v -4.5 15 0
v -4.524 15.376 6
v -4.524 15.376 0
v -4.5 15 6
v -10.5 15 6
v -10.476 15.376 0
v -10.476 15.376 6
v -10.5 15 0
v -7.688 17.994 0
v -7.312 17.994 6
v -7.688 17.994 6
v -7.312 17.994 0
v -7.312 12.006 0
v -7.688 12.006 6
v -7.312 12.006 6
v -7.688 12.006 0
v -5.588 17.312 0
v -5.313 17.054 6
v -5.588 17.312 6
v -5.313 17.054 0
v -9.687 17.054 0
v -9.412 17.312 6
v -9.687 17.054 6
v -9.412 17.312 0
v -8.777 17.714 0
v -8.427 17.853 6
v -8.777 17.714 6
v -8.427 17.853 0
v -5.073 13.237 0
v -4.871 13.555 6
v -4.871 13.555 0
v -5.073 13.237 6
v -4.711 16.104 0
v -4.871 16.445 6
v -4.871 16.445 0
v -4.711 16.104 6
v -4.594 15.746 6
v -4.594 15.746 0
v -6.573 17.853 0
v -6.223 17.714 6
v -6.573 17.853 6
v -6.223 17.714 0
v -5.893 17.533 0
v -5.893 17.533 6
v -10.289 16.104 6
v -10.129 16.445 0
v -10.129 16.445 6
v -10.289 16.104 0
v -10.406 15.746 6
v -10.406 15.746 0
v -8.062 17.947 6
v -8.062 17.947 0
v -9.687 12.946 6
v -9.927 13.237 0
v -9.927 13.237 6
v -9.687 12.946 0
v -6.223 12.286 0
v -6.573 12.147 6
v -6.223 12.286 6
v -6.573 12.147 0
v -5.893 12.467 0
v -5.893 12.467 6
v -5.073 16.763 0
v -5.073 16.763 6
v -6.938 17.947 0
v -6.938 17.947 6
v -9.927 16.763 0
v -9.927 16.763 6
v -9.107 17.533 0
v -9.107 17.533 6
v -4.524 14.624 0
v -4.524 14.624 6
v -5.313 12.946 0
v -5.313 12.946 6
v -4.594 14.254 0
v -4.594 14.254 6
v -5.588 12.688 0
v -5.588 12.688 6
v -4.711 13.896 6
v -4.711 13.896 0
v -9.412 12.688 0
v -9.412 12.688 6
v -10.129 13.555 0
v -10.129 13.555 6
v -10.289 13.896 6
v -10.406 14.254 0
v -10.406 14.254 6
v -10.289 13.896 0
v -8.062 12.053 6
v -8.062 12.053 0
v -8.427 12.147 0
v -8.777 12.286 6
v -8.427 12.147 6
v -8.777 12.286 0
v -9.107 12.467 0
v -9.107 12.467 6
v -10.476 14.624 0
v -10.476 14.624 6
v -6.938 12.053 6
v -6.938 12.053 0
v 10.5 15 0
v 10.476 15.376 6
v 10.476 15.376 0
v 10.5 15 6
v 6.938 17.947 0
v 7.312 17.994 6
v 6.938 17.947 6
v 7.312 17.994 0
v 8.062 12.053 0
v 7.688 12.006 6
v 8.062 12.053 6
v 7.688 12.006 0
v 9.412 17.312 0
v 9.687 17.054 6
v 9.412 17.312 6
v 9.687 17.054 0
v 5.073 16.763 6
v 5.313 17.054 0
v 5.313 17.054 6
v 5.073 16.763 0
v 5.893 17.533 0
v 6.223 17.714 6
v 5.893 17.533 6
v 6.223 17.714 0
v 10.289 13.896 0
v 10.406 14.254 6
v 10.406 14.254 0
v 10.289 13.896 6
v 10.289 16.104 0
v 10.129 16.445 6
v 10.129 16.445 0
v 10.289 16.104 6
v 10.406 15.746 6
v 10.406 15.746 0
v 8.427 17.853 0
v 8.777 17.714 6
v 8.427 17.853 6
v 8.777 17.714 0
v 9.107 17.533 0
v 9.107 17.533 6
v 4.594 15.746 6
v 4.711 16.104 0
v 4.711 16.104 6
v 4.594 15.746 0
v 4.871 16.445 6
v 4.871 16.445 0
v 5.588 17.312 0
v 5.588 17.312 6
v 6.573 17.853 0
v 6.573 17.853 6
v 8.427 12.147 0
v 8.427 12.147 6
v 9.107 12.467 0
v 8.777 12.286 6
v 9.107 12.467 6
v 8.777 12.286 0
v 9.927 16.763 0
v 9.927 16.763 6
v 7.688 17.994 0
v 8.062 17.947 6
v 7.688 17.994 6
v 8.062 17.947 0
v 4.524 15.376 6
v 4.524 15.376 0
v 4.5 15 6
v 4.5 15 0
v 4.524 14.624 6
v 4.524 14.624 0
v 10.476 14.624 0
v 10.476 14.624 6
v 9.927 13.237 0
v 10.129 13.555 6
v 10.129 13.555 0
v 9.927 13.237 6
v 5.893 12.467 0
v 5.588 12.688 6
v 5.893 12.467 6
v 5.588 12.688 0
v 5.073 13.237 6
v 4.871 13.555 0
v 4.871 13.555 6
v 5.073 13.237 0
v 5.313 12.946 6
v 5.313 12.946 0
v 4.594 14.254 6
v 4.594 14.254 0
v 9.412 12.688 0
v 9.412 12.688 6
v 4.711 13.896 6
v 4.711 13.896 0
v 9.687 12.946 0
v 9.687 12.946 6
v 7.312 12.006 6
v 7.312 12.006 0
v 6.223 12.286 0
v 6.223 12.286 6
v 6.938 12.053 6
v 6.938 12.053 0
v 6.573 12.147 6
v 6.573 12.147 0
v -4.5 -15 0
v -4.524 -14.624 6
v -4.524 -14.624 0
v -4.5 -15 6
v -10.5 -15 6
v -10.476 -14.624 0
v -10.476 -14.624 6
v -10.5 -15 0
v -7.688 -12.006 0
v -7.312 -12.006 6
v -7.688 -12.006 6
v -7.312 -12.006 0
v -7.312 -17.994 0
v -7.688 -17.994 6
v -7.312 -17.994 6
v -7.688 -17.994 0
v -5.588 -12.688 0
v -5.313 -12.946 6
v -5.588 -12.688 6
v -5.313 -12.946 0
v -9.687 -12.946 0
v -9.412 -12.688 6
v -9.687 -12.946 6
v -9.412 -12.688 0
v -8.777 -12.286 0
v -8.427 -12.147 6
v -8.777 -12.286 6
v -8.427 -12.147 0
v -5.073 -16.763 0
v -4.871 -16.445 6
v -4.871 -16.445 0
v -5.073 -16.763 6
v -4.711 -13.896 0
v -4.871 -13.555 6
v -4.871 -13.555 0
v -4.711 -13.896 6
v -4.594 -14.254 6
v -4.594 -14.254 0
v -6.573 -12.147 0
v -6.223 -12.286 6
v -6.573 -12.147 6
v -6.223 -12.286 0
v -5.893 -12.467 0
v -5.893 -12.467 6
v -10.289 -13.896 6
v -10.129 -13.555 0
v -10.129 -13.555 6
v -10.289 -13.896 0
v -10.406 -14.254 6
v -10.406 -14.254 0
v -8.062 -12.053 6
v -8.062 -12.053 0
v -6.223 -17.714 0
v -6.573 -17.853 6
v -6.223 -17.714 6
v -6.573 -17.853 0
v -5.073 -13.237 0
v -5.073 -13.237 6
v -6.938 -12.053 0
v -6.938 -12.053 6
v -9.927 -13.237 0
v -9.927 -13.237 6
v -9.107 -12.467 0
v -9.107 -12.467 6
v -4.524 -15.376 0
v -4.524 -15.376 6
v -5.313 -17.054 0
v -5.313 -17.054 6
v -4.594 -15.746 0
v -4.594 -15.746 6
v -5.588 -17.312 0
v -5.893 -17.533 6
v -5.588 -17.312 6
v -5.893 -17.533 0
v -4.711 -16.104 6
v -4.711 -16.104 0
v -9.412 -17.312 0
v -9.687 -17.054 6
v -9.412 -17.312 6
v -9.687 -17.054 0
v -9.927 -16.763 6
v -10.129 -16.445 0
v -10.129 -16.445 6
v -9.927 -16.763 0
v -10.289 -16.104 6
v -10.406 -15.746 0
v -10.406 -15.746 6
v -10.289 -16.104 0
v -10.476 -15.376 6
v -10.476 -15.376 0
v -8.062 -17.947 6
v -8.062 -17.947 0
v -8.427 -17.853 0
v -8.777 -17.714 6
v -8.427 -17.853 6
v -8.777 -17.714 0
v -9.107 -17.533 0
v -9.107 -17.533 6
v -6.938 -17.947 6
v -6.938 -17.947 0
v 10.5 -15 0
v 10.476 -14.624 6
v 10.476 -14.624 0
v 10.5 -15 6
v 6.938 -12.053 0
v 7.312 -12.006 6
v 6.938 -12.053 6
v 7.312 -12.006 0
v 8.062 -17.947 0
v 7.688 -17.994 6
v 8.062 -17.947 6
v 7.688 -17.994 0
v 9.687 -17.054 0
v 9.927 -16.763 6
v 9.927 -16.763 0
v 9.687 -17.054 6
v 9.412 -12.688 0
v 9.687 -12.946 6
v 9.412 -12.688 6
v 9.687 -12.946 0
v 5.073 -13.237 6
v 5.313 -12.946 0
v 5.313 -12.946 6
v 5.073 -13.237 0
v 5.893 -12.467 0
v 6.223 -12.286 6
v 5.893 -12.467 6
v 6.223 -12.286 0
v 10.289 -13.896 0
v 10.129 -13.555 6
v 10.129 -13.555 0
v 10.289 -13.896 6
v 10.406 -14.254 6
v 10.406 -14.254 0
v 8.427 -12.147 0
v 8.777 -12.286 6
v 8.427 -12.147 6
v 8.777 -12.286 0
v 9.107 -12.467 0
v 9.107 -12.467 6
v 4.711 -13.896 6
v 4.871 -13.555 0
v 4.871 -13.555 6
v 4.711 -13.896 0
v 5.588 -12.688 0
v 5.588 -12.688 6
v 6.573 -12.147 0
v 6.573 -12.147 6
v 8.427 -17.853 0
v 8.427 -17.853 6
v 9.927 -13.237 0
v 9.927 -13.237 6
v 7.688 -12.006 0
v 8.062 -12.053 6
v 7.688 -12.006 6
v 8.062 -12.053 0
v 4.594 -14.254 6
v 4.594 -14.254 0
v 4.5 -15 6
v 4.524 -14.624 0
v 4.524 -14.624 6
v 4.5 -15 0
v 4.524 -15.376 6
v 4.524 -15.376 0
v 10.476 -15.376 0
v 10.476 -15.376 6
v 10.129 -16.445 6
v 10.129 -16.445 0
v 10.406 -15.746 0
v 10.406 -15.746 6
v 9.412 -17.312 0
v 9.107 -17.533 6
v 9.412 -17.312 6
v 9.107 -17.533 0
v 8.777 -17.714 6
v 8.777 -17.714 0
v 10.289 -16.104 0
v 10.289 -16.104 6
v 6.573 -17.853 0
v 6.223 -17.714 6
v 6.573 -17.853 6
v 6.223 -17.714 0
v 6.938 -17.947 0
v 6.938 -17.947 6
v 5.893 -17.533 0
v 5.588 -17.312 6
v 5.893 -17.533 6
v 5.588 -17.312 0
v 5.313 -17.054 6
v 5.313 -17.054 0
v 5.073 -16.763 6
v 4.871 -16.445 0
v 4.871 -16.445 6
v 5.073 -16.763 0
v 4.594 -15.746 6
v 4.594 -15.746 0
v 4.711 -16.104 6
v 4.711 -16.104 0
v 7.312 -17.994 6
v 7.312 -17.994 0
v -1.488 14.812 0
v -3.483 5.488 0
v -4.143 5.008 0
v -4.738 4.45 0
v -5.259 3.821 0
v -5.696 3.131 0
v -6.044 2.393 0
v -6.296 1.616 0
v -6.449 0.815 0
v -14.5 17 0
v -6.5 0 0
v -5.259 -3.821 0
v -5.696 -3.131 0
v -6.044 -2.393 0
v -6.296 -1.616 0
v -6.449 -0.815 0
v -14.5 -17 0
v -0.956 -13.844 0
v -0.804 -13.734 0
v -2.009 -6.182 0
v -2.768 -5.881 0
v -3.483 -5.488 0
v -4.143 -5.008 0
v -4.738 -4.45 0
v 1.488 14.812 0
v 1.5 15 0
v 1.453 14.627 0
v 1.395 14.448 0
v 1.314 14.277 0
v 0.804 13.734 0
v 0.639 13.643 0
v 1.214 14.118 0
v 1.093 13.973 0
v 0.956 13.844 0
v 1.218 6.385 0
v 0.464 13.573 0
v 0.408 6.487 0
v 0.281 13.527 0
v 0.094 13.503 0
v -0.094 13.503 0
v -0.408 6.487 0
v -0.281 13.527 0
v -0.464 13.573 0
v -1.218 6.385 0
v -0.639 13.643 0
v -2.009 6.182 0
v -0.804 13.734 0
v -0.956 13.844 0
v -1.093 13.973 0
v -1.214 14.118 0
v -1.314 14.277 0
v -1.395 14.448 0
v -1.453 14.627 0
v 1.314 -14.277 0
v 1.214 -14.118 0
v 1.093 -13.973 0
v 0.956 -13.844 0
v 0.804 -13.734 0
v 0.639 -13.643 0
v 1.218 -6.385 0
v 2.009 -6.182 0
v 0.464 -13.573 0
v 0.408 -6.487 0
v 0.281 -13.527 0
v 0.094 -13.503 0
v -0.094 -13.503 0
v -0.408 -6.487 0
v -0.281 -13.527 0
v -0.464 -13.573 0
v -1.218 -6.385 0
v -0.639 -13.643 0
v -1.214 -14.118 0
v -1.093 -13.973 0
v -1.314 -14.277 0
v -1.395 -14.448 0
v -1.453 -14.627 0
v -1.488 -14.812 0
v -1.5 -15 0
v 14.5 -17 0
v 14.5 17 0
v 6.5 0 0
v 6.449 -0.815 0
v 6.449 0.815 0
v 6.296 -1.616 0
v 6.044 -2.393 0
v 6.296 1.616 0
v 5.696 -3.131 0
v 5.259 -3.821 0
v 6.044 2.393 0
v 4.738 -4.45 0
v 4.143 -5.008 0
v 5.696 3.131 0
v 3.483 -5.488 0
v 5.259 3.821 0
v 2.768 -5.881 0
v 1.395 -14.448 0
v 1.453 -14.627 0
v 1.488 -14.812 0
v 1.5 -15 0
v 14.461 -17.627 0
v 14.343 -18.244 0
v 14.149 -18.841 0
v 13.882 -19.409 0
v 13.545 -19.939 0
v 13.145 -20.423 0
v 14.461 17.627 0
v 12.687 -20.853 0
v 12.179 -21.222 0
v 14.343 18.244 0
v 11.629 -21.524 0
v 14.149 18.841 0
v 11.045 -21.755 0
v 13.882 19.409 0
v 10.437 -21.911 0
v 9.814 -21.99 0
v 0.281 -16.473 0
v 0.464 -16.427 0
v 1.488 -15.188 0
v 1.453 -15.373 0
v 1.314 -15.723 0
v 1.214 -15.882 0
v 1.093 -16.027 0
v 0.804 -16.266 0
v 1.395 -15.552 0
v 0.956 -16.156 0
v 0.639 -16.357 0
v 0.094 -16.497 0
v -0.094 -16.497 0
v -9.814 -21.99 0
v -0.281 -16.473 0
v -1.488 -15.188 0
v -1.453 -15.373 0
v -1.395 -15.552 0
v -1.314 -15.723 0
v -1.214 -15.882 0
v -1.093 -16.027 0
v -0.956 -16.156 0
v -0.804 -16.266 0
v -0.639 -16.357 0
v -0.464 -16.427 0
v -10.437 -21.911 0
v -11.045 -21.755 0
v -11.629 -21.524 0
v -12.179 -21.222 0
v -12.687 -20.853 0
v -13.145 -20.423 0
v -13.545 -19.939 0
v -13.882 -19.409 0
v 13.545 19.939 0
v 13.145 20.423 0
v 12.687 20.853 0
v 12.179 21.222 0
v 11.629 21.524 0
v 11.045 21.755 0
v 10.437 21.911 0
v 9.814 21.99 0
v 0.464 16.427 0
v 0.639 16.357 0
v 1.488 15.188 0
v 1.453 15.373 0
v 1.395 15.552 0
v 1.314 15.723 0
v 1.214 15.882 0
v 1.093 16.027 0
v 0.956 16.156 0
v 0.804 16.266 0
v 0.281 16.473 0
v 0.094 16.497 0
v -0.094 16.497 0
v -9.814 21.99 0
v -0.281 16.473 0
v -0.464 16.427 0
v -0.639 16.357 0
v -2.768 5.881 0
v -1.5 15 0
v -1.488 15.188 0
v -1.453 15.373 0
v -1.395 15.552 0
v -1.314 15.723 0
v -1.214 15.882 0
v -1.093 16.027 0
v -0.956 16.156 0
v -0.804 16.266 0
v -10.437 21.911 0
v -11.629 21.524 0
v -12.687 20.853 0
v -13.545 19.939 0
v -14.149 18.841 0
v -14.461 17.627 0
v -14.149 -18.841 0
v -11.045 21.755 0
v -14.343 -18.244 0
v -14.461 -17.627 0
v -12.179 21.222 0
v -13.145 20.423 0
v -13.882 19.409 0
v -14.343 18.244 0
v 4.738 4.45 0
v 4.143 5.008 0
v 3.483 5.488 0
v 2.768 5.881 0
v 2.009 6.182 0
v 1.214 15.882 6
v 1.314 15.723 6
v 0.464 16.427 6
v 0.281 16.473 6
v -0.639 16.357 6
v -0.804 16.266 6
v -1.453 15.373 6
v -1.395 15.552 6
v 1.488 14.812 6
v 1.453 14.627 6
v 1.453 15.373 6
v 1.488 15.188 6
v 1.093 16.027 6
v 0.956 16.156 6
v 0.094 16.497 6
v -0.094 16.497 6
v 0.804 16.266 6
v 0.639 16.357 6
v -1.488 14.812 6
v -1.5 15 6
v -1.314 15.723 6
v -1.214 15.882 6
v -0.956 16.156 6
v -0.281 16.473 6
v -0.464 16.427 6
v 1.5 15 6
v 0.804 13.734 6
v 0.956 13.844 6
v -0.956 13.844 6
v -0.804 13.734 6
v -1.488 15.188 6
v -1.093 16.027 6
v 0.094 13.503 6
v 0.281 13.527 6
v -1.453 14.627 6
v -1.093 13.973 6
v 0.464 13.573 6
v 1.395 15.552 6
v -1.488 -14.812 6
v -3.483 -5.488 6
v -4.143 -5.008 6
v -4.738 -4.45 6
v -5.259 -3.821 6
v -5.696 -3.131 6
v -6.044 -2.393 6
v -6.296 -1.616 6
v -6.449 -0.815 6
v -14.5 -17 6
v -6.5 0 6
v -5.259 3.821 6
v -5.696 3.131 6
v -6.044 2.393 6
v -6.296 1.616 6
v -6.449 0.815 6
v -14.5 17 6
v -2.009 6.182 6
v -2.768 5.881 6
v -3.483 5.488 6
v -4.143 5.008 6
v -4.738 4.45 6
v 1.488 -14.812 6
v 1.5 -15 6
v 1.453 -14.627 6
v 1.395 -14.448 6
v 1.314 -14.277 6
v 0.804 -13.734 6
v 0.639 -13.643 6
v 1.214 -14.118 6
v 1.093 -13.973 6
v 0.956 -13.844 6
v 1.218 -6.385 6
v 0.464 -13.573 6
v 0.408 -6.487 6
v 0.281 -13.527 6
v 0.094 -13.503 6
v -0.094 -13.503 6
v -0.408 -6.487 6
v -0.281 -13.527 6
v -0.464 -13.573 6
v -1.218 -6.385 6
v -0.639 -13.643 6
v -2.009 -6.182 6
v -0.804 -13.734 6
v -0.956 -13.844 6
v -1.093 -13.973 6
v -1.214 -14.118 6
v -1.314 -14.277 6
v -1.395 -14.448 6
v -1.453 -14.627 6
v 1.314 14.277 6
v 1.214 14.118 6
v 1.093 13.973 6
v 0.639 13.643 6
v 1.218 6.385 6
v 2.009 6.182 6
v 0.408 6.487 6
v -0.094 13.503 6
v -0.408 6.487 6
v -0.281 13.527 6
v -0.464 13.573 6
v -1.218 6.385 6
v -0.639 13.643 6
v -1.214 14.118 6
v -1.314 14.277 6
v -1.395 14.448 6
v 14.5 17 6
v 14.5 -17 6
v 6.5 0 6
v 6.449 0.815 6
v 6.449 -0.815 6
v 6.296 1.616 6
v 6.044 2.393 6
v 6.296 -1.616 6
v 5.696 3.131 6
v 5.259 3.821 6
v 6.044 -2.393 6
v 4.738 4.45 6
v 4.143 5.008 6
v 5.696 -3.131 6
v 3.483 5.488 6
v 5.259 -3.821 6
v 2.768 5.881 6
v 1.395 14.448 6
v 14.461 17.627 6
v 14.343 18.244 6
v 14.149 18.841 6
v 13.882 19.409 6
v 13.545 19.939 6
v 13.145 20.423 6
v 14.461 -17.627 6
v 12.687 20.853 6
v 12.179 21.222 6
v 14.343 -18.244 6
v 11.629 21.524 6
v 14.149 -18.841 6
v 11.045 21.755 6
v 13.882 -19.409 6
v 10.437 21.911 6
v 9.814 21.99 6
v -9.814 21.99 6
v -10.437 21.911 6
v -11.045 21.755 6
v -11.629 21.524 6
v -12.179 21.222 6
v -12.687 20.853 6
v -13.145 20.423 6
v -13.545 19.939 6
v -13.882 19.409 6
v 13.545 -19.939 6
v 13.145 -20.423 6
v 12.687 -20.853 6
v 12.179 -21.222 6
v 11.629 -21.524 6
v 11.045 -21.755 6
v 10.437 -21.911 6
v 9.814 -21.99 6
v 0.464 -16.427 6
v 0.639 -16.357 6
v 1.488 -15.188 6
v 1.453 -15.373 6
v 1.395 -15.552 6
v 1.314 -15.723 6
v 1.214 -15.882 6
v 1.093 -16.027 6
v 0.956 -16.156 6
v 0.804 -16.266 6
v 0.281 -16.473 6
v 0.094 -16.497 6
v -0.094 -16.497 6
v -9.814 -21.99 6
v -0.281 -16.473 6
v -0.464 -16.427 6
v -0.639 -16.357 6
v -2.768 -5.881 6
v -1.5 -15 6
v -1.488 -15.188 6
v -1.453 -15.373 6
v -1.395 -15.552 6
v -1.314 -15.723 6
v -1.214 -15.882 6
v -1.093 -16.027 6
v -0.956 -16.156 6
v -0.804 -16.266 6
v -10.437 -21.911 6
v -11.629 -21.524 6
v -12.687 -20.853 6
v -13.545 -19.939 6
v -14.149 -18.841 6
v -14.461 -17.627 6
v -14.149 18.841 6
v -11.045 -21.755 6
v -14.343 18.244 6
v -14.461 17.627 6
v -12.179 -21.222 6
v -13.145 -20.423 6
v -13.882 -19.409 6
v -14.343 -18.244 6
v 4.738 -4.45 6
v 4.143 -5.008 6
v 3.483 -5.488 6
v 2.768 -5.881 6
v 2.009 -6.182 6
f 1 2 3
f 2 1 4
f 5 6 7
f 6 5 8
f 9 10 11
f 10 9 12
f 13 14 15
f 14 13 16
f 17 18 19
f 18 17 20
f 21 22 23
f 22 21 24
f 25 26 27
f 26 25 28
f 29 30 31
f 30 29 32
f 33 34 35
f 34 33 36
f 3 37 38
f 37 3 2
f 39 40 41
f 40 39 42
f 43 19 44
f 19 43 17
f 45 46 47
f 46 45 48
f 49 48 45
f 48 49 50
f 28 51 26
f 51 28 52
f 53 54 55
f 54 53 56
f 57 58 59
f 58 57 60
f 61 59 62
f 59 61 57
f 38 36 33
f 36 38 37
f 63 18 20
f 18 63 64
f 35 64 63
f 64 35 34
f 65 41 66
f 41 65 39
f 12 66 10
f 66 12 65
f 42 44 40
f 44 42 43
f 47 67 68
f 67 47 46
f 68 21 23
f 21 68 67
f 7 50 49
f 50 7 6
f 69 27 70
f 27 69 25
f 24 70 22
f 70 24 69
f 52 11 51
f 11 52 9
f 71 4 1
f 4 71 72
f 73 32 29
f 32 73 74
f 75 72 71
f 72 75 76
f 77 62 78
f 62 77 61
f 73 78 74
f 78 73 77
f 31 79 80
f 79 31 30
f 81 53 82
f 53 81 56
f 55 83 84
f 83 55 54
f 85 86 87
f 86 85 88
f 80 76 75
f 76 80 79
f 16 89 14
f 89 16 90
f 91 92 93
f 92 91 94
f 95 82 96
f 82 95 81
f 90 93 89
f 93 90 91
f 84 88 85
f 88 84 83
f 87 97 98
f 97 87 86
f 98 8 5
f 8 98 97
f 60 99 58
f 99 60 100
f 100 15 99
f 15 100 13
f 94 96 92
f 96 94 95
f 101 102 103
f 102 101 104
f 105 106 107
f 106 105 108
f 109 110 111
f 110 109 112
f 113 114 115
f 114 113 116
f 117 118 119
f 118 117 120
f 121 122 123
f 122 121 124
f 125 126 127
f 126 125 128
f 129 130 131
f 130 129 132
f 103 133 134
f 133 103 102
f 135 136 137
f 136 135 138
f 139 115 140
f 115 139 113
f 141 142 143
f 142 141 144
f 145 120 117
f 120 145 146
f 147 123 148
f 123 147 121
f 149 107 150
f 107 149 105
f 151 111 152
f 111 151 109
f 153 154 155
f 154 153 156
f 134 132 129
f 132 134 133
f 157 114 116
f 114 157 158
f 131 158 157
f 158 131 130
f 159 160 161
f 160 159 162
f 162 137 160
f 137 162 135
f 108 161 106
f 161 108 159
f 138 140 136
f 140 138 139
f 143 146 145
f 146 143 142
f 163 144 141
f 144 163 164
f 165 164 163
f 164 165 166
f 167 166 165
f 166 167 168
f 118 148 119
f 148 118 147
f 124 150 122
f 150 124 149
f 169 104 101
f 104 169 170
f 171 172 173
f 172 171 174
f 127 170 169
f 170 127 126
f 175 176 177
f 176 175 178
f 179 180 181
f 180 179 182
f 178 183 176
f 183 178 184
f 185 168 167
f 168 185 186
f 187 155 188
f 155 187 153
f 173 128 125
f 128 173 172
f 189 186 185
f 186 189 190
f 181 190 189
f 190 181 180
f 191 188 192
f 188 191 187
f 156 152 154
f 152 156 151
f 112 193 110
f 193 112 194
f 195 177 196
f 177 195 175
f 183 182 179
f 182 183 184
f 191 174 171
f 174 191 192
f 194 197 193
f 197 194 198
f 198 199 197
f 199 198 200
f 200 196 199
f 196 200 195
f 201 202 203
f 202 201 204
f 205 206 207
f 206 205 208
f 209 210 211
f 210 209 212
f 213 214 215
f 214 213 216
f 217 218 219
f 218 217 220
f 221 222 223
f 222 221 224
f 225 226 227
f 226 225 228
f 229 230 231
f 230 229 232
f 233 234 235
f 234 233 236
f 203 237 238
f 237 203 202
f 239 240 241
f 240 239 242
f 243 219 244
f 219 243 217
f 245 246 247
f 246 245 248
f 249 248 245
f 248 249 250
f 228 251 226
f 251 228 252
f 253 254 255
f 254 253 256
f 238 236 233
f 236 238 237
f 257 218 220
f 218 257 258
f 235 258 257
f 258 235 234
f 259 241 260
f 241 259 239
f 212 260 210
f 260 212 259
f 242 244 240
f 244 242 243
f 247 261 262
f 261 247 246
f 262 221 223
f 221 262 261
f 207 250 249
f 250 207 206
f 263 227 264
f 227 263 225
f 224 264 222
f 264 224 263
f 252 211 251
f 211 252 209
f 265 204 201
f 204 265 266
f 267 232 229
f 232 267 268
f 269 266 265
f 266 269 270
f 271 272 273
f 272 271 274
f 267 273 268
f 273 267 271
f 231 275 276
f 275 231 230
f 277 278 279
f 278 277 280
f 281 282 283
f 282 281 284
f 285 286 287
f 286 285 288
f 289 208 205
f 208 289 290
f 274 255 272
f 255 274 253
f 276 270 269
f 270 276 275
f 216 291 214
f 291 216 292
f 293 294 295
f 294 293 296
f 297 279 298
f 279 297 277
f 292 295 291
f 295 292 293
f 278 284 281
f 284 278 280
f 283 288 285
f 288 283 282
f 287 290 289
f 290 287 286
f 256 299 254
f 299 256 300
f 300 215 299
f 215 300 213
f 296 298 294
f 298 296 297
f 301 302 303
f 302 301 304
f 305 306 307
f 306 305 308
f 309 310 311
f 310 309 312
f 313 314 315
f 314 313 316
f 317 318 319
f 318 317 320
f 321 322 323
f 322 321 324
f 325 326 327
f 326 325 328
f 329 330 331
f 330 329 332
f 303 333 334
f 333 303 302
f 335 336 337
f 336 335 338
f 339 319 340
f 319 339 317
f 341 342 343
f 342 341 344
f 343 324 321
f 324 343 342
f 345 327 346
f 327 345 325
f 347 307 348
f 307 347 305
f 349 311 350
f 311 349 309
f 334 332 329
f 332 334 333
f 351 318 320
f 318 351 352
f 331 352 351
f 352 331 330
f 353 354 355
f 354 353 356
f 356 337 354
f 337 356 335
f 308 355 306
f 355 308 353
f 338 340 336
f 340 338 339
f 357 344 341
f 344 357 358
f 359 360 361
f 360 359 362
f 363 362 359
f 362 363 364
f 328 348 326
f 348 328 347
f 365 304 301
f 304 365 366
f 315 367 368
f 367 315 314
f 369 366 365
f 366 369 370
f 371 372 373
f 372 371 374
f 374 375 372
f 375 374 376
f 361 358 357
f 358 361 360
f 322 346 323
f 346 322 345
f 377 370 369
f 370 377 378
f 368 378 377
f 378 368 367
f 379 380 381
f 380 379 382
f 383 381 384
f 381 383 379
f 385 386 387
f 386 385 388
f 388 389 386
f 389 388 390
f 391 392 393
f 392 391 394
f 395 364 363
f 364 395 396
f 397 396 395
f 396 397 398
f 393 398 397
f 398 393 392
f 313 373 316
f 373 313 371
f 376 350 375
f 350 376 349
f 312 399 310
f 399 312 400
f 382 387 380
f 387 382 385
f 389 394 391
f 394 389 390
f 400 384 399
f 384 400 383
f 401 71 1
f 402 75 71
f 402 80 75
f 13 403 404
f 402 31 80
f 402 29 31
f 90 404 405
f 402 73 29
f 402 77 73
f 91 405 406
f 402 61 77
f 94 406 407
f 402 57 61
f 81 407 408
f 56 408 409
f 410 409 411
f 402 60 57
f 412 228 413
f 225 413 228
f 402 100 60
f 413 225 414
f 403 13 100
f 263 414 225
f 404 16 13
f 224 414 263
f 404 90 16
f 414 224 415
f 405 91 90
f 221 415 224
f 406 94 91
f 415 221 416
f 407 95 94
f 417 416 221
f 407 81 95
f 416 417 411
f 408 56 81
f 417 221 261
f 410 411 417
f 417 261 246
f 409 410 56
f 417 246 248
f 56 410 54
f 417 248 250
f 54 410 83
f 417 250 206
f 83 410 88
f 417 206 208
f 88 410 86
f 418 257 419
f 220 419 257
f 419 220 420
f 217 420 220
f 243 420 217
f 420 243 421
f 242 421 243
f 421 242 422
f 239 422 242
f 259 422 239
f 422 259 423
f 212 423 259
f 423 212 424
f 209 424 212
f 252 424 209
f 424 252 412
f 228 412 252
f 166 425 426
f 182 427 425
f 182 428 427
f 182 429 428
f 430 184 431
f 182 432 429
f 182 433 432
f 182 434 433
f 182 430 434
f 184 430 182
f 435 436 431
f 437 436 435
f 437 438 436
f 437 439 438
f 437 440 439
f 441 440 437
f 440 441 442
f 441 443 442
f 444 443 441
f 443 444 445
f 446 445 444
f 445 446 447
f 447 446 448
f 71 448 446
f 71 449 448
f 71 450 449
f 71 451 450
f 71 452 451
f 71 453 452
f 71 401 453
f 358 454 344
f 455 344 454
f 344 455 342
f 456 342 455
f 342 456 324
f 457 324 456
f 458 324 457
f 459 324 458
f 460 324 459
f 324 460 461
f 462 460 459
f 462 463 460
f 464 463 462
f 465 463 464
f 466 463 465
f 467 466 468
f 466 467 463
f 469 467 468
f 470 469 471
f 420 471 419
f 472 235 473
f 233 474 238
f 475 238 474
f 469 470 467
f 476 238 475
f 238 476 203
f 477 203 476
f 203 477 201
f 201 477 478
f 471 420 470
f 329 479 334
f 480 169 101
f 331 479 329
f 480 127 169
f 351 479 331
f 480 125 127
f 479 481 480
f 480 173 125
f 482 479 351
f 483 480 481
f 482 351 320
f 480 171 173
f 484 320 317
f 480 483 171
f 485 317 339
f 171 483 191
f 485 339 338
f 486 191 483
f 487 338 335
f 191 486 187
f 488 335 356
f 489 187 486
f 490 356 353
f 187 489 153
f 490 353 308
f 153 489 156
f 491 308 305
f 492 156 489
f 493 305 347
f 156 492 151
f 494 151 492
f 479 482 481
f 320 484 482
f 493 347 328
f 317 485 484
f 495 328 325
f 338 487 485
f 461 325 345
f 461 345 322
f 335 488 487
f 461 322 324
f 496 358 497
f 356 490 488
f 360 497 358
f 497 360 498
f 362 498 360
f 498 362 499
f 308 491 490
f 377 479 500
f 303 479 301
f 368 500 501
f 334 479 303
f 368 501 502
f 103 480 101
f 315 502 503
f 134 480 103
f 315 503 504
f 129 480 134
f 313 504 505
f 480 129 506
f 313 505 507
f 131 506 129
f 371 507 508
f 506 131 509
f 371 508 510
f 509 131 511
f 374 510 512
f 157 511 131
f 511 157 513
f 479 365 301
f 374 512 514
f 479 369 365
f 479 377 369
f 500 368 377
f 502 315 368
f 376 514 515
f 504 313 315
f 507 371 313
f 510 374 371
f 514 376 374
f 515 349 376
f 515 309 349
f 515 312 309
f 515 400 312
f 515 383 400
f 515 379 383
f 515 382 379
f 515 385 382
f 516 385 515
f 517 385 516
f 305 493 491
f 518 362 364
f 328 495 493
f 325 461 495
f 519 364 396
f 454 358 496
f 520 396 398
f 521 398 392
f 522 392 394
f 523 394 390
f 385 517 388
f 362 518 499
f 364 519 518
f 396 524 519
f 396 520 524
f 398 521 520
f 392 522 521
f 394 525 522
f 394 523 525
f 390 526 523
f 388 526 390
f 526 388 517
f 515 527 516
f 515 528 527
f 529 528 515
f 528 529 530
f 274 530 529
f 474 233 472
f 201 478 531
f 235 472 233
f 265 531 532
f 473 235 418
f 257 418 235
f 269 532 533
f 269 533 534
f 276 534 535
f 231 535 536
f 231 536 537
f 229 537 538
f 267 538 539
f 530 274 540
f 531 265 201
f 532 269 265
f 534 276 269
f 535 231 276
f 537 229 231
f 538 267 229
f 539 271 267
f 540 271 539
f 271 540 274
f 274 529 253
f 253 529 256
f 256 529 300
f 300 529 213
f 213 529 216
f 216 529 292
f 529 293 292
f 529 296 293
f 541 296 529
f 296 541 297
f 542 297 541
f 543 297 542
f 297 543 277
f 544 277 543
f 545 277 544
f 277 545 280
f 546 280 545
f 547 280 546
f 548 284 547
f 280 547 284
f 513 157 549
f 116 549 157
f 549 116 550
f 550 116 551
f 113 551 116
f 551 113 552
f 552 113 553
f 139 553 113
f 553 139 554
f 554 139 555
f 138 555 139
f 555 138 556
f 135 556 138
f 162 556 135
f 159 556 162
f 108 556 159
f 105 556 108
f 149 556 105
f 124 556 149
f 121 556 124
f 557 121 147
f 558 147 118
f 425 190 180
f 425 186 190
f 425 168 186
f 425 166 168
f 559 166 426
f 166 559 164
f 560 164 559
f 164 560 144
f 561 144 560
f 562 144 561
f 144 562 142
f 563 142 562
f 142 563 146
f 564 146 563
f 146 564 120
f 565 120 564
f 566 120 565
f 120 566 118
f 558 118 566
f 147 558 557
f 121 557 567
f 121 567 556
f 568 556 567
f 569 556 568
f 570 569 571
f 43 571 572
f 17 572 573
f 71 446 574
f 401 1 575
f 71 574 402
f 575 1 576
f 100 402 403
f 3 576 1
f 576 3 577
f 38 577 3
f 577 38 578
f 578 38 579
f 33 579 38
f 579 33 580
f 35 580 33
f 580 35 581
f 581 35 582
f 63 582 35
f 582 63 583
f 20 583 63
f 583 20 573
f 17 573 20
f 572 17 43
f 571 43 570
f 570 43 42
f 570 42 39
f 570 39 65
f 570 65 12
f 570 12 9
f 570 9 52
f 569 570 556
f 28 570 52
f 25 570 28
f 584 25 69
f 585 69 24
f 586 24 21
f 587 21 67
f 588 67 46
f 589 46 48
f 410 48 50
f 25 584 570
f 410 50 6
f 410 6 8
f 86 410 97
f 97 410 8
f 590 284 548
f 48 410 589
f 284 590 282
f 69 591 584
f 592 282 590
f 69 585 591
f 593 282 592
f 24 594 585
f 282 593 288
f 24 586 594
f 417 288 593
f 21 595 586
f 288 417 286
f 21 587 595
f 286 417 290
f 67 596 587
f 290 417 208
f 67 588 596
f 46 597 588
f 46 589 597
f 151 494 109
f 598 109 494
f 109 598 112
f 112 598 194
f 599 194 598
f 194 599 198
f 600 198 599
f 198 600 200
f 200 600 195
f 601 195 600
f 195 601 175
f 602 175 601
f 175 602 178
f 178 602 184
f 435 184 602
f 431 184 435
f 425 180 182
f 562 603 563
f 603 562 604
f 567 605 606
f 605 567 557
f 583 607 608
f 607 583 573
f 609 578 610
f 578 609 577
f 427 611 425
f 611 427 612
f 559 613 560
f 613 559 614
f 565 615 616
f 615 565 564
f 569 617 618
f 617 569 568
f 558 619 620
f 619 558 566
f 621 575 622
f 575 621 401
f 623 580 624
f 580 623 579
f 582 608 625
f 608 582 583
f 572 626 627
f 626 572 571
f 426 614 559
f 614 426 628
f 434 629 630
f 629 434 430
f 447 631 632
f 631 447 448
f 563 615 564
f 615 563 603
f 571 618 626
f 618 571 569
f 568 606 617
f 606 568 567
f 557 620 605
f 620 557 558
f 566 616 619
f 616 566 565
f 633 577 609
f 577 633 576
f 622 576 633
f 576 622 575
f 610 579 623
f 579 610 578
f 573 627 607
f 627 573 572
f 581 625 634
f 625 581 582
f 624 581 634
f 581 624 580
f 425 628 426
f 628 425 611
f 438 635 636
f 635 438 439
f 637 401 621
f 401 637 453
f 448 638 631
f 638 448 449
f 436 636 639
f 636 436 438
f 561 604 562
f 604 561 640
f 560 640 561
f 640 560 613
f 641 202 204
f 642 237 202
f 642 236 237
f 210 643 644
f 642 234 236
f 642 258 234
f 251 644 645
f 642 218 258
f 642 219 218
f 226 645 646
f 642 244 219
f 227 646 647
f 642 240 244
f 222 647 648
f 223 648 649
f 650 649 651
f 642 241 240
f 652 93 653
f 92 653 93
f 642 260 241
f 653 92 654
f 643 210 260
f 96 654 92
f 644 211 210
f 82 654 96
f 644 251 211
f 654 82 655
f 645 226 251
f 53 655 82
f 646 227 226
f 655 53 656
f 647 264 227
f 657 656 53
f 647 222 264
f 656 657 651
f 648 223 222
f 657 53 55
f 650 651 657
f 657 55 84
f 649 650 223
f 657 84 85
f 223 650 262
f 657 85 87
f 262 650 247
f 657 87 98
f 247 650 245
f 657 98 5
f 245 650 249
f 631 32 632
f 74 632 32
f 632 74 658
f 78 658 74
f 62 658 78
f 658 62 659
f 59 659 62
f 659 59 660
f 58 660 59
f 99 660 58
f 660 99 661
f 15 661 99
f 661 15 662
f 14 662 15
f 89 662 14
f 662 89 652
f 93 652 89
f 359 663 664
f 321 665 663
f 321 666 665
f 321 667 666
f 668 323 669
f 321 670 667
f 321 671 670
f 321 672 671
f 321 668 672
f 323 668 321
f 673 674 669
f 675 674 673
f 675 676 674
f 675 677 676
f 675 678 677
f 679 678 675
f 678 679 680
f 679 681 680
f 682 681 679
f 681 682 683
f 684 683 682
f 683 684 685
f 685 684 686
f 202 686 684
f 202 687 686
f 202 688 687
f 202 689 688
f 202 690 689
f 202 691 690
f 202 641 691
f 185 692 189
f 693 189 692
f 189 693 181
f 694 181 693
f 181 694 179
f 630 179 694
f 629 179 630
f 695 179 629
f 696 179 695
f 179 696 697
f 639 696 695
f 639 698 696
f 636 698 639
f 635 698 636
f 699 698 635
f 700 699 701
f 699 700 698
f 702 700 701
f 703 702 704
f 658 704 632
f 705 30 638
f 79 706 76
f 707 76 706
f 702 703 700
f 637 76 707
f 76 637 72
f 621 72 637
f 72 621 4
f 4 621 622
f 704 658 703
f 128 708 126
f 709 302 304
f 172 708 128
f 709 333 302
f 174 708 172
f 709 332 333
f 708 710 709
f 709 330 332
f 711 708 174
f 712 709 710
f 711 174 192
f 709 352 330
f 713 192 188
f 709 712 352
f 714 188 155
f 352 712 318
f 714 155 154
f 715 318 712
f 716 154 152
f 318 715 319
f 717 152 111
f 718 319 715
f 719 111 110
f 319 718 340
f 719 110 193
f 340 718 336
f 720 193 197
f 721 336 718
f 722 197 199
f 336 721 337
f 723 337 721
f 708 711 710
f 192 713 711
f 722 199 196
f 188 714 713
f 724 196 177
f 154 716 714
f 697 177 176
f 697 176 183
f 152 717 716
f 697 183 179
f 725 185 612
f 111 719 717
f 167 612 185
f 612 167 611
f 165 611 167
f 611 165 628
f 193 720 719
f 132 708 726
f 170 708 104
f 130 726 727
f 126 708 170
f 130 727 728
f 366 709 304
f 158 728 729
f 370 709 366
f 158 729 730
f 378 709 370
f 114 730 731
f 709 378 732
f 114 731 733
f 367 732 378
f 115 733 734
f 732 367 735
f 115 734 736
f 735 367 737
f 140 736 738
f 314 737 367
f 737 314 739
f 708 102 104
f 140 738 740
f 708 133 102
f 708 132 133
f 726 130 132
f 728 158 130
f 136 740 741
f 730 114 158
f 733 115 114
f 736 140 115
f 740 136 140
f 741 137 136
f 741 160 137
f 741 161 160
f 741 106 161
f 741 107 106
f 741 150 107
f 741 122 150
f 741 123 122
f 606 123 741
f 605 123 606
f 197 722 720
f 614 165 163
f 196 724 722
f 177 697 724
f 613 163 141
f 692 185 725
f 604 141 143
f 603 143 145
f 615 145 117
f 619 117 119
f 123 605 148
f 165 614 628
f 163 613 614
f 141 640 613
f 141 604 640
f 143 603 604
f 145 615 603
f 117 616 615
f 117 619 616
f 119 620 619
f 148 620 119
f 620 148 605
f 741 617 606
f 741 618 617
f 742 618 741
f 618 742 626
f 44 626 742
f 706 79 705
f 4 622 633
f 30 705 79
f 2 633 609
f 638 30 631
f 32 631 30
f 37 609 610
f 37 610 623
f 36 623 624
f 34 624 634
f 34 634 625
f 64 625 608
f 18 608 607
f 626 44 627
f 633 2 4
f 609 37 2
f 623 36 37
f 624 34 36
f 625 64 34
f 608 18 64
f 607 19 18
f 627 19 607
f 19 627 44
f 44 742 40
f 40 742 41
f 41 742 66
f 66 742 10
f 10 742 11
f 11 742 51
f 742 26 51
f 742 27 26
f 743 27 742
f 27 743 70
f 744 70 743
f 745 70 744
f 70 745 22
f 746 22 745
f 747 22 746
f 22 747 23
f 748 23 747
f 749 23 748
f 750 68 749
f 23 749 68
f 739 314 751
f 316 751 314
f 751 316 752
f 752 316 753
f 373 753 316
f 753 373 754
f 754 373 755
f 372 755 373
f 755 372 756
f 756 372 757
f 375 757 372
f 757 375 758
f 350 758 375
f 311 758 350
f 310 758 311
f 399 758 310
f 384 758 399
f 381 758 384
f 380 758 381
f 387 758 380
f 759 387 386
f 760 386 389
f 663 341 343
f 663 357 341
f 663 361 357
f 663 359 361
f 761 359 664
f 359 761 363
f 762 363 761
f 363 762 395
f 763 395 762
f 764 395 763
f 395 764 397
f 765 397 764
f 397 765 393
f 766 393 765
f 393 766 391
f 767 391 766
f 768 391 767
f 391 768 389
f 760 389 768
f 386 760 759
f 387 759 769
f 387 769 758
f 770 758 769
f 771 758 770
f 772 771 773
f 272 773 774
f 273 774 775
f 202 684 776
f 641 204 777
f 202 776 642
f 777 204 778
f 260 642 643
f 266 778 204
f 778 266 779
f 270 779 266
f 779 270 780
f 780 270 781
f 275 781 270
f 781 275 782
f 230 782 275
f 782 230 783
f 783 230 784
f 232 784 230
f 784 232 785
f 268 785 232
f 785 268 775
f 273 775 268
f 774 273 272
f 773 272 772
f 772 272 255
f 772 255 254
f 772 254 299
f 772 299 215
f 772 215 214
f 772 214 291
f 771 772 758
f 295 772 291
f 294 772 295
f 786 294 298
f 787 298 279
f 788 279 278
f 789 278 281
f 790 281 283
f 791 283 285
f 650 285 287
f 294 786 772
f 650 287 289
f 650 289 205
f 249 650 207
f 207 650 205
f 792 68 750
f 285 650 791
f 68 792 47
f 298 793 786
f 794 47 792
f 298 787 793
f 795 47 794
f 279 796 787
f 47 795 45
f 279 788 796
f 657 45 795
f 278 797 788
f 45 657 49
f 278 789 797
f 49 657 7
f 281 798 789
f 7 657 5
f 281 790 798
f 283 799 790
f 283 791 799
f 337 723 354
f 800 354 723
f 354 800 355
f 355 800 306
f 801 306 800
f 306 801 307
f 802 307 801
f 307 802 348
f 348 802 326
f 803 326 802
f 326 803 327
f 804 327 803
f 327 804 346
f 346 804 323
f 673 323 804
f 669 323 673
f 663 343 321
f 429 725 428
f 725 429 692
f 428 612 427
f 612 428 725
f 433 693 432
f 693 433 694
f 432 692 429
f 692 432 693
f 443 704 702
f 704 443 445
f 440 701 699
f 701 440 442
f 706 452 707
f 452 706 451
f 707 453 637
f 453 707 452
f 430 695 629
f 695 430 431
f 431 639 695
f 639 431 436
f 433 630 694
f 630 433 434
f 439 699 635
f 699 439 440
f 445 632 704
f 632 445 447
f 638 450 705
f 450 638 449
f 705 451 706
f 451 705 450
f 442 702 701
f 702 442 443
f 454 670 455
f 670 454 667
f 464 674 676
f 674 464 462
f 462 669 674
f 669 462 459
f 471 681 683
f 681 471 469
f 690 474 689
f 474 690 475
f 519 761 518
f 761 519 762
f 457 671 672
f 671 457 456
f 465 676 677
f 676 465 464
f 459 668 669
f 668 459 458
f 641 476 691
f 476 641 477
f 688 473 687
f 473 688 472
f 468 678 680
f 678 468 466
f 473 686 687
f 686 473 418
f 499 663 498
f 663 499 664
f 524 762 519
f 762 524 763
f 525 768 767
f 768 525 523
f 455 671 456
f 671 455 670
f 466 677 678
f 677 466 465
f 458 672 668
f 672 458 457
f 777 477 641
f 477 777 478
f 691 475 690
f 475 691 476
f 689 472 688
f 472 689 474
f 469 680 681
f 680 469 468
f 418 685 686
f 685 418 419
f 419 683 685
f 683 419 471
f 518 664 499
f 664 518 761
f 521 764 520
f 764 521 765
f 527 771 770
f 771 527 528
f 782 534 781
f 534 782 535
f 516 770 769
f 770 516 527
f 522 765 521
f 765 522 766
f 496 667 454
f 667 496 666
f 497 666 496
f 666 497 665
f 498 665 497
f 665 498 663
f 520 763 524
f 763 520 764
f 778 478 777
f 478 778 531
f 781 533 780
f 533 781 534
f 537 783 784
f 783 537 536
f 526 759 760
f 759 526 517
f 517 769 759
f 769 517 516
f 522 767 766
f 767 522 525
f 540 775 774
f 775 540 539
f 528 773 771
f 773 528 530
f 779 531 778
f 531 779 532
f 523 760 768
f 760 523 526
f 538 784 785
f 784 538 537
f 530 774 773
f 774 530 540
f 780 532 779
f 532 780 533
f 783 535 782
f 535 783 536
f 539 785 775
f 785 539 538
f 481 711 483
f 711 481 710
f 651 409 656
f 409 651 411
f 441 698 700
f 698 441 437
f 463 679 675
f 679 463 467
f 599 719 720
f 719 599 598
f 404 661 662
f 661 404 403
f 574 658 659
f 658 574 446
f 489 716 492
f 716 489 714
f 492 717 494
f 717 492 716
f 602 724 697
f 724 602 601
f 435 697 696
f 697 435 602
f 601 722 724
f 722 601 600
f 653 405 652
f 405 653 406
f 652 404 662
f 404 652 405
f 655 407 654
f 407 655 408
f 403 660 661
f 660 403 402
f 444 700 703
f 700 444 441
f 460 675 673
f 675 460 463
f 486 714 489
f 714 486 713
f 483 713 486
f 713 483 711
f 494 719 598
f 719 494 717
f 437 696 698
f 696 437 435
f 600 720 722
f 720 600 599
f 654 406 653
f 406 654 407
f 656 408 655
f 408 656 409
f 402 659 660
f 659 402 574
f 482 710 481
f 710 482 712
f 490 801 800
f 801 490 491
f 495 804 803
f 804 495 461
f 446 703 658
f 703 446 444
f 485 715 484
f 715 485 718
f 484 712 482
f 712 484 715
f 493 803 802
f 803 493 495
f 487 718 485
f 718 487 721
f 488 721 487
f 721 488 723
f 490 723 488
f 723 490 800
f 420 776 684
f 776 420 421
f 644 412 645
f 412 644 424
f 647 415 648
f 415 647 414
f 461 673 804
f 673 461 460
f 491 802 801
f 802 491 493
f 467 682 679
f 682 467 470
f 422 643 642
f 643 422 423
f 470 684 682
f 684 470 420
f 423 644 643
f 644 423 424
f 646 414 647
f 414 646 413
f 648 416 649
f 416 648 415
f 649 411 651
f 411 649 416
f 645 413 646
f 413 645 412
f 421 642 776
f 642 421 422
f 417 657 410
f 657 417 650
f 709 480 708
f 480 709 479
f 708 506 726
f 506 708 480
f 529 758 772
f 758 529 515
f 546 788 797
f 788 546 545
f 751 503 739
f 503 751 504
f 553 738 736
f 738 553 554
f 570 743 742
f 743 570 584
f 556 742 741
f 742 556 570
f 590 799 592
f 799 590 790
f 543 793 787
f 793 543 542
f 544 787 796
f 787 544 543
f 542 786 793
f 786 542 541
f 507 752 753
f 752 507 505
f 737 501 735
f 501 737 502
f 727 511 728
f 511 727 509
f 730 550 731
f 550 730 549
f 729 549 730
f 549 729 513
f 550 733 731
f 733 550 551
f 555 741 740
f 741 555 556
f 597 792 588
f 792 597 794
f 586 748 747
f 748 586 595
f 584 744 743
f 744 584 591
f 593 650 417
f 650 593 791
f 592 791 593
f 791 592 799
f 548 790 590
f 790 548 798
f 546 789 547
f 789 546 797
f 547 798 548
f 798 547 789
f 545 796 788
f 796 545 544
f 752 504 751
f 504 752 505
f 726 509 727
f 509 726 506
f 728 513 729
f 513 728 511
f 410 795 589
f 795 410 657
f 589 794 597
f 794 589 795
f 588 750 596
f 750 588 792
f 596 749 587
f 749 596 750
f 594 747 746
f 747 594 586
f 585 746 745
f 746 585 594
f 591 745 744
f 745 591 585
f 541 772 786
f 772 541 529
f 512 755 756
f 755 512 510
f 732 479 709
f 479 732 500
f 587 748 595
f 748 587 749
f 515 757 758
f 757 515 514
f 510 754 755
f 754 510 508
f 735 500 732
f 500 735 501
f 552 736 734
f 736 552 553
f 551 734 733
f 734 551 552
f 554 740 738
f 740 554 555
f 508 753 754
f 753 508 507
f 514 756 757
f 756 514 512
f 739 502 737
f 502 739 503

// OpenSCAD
$fn = 50;


difference() {
	union() {
		hull() {
			translate(v = [-9.5000000000, 17.0000000000, 0]) {
				cylinder(h = 6, r = 5);
			}
			translate(v = [9.5000000000, 17.0000000000, 0]) {
				cylinder(h = 6, r = 5);
			}
			translate(v = [-9.5000000000, -17.0000000000, 0]) {
				cylinder(h = 6, r = 5);
			}
			translate(v = [9.5000000000, -17.0000000000, 0]) {
				cylinder(h = 6, r = 5);
			}
		}
	}
	union() {
		#translate(v = [-7.5000000000, 15.0000000000, 0]) {
			cylinder(h = 6, r = 3.0000000000);
		}
		#translate(v = [7.5000000000, 15.0000000000, 0]) {
			cylinder(h = 6, r = 3.0000000000);
		}
		#translate(v = [-7.5000000000, -15.0000000000, 0]) {
			cylinder(h = 6, r = 3.0000000000);
		}
		#translate(v = [7.5000000000, -15.0000000000, 0]) {
			cylinder(h = 6, r = 3.0000000000);
		}
		#translate(v = [-7.5000000000, -15.0000000000, -100.0000000000]) {
			cylinder(h = 200, r = 3.0000000000);
		}
		#translate(v = [-7.5000000000, 15.0000000000, -100.0000000000]) {
			cylinder(h = 200, r = 3.0000000000);
		}
		#translate(v = [7.5000000000, -15.0000000000, -100.0000000000]) {
			cylinder(h = 200, r = 3.0000000000);
		}
		#translate(v = [7.5000000000, 15.0000000000, -100.0000000000]) {
			cylinder(h = 200, r = 3.0000000000);
		}
		#translate(v = [-7.5000000000, 15.0000000000, 0]) {
			cylinder(h = 6, r = 1.5000000000);
		}
		#translate(v = [0.0000000000, 15.0000000000, 0]) {
			cylinder(h = 6, r = 1.5000000000);
		}
		#translate(v = [7.5000000000, 15.0000000000, 0]) {
			cylinder(h = 6, r = 1.5000000000);
		}
		#translate(v = [-7.5000000000, -15.0000000000, 0]) {
			cylinder(h = 6, r = 1.5000000000);
		}
		#translate(v = [0.0000000000, -15.0000000000, 0]) {
			cylinder(h = 6, r = 1.5000000000);
		}
		#translate(v = [7.5000000000, -15.0000000000, 0]) {
			cylinder(h = 6, r = 1.5000000000);
		}
		#translate(v = [-7.5000000000, 15.0000000000, 0]) {
			cylinder(h = 6, r = 1.5000000000);
		}
		#translate(v = [0.0000000000, 15.0000000000, 0]) {
			cylinder(h = 6, r = 1.5000000000);
		}
		#translate(v = [7.5000000000, 15.0000000000, 0]) {
			cylinder(h = 6, r = 1.5000000000);
		}
		#translate(v = [-7.5000000000, -15.0000000000, 0]) {
			cylinder(h = 6, r = 1.5000000000);
		}
		#translate(v = [0.0000000000, -15.0000000000, 0]) {
			cylinder(h = 6, r = 1.5000000000);
		}
		#translate(v = [7.5000000000, -15.0000000000, 0]) {
			cylinder(h = 6, r = 1.5000000000);
		}
		#translate(v = [-7.5000000000, 15.0000000000, 0]) {
			cylinder(h = 6, r = 1.5000000000);
		}
		#translate(v = [0.0000000000, 15.0000000000, 0]) {
			cylinder(h = 6, r = 1.5000000000);
		}
		#translate(v = [7.5000000000, 15.0000000000, 0]) {
			cylinder(h = 6, r = 1.5000000000);
		}
		#translate(v = [-7.5000000000, -15.0000000000, 0]) {
			cylinder(h = 6, r = 1.5000000000);
		}
		#translate(v = [0.0000000000, -15.0000000000, 0]) {
			cylinder(h = 6, r = 1.5000000000);
		}
		#translate(v = [7.5000000000, -15.0000000000, 0]) {
			cylinder(h = 6, r = 1.5000000000);
		}
		#cylinder(h = 6, r = 6.5000000000);
	}
}
